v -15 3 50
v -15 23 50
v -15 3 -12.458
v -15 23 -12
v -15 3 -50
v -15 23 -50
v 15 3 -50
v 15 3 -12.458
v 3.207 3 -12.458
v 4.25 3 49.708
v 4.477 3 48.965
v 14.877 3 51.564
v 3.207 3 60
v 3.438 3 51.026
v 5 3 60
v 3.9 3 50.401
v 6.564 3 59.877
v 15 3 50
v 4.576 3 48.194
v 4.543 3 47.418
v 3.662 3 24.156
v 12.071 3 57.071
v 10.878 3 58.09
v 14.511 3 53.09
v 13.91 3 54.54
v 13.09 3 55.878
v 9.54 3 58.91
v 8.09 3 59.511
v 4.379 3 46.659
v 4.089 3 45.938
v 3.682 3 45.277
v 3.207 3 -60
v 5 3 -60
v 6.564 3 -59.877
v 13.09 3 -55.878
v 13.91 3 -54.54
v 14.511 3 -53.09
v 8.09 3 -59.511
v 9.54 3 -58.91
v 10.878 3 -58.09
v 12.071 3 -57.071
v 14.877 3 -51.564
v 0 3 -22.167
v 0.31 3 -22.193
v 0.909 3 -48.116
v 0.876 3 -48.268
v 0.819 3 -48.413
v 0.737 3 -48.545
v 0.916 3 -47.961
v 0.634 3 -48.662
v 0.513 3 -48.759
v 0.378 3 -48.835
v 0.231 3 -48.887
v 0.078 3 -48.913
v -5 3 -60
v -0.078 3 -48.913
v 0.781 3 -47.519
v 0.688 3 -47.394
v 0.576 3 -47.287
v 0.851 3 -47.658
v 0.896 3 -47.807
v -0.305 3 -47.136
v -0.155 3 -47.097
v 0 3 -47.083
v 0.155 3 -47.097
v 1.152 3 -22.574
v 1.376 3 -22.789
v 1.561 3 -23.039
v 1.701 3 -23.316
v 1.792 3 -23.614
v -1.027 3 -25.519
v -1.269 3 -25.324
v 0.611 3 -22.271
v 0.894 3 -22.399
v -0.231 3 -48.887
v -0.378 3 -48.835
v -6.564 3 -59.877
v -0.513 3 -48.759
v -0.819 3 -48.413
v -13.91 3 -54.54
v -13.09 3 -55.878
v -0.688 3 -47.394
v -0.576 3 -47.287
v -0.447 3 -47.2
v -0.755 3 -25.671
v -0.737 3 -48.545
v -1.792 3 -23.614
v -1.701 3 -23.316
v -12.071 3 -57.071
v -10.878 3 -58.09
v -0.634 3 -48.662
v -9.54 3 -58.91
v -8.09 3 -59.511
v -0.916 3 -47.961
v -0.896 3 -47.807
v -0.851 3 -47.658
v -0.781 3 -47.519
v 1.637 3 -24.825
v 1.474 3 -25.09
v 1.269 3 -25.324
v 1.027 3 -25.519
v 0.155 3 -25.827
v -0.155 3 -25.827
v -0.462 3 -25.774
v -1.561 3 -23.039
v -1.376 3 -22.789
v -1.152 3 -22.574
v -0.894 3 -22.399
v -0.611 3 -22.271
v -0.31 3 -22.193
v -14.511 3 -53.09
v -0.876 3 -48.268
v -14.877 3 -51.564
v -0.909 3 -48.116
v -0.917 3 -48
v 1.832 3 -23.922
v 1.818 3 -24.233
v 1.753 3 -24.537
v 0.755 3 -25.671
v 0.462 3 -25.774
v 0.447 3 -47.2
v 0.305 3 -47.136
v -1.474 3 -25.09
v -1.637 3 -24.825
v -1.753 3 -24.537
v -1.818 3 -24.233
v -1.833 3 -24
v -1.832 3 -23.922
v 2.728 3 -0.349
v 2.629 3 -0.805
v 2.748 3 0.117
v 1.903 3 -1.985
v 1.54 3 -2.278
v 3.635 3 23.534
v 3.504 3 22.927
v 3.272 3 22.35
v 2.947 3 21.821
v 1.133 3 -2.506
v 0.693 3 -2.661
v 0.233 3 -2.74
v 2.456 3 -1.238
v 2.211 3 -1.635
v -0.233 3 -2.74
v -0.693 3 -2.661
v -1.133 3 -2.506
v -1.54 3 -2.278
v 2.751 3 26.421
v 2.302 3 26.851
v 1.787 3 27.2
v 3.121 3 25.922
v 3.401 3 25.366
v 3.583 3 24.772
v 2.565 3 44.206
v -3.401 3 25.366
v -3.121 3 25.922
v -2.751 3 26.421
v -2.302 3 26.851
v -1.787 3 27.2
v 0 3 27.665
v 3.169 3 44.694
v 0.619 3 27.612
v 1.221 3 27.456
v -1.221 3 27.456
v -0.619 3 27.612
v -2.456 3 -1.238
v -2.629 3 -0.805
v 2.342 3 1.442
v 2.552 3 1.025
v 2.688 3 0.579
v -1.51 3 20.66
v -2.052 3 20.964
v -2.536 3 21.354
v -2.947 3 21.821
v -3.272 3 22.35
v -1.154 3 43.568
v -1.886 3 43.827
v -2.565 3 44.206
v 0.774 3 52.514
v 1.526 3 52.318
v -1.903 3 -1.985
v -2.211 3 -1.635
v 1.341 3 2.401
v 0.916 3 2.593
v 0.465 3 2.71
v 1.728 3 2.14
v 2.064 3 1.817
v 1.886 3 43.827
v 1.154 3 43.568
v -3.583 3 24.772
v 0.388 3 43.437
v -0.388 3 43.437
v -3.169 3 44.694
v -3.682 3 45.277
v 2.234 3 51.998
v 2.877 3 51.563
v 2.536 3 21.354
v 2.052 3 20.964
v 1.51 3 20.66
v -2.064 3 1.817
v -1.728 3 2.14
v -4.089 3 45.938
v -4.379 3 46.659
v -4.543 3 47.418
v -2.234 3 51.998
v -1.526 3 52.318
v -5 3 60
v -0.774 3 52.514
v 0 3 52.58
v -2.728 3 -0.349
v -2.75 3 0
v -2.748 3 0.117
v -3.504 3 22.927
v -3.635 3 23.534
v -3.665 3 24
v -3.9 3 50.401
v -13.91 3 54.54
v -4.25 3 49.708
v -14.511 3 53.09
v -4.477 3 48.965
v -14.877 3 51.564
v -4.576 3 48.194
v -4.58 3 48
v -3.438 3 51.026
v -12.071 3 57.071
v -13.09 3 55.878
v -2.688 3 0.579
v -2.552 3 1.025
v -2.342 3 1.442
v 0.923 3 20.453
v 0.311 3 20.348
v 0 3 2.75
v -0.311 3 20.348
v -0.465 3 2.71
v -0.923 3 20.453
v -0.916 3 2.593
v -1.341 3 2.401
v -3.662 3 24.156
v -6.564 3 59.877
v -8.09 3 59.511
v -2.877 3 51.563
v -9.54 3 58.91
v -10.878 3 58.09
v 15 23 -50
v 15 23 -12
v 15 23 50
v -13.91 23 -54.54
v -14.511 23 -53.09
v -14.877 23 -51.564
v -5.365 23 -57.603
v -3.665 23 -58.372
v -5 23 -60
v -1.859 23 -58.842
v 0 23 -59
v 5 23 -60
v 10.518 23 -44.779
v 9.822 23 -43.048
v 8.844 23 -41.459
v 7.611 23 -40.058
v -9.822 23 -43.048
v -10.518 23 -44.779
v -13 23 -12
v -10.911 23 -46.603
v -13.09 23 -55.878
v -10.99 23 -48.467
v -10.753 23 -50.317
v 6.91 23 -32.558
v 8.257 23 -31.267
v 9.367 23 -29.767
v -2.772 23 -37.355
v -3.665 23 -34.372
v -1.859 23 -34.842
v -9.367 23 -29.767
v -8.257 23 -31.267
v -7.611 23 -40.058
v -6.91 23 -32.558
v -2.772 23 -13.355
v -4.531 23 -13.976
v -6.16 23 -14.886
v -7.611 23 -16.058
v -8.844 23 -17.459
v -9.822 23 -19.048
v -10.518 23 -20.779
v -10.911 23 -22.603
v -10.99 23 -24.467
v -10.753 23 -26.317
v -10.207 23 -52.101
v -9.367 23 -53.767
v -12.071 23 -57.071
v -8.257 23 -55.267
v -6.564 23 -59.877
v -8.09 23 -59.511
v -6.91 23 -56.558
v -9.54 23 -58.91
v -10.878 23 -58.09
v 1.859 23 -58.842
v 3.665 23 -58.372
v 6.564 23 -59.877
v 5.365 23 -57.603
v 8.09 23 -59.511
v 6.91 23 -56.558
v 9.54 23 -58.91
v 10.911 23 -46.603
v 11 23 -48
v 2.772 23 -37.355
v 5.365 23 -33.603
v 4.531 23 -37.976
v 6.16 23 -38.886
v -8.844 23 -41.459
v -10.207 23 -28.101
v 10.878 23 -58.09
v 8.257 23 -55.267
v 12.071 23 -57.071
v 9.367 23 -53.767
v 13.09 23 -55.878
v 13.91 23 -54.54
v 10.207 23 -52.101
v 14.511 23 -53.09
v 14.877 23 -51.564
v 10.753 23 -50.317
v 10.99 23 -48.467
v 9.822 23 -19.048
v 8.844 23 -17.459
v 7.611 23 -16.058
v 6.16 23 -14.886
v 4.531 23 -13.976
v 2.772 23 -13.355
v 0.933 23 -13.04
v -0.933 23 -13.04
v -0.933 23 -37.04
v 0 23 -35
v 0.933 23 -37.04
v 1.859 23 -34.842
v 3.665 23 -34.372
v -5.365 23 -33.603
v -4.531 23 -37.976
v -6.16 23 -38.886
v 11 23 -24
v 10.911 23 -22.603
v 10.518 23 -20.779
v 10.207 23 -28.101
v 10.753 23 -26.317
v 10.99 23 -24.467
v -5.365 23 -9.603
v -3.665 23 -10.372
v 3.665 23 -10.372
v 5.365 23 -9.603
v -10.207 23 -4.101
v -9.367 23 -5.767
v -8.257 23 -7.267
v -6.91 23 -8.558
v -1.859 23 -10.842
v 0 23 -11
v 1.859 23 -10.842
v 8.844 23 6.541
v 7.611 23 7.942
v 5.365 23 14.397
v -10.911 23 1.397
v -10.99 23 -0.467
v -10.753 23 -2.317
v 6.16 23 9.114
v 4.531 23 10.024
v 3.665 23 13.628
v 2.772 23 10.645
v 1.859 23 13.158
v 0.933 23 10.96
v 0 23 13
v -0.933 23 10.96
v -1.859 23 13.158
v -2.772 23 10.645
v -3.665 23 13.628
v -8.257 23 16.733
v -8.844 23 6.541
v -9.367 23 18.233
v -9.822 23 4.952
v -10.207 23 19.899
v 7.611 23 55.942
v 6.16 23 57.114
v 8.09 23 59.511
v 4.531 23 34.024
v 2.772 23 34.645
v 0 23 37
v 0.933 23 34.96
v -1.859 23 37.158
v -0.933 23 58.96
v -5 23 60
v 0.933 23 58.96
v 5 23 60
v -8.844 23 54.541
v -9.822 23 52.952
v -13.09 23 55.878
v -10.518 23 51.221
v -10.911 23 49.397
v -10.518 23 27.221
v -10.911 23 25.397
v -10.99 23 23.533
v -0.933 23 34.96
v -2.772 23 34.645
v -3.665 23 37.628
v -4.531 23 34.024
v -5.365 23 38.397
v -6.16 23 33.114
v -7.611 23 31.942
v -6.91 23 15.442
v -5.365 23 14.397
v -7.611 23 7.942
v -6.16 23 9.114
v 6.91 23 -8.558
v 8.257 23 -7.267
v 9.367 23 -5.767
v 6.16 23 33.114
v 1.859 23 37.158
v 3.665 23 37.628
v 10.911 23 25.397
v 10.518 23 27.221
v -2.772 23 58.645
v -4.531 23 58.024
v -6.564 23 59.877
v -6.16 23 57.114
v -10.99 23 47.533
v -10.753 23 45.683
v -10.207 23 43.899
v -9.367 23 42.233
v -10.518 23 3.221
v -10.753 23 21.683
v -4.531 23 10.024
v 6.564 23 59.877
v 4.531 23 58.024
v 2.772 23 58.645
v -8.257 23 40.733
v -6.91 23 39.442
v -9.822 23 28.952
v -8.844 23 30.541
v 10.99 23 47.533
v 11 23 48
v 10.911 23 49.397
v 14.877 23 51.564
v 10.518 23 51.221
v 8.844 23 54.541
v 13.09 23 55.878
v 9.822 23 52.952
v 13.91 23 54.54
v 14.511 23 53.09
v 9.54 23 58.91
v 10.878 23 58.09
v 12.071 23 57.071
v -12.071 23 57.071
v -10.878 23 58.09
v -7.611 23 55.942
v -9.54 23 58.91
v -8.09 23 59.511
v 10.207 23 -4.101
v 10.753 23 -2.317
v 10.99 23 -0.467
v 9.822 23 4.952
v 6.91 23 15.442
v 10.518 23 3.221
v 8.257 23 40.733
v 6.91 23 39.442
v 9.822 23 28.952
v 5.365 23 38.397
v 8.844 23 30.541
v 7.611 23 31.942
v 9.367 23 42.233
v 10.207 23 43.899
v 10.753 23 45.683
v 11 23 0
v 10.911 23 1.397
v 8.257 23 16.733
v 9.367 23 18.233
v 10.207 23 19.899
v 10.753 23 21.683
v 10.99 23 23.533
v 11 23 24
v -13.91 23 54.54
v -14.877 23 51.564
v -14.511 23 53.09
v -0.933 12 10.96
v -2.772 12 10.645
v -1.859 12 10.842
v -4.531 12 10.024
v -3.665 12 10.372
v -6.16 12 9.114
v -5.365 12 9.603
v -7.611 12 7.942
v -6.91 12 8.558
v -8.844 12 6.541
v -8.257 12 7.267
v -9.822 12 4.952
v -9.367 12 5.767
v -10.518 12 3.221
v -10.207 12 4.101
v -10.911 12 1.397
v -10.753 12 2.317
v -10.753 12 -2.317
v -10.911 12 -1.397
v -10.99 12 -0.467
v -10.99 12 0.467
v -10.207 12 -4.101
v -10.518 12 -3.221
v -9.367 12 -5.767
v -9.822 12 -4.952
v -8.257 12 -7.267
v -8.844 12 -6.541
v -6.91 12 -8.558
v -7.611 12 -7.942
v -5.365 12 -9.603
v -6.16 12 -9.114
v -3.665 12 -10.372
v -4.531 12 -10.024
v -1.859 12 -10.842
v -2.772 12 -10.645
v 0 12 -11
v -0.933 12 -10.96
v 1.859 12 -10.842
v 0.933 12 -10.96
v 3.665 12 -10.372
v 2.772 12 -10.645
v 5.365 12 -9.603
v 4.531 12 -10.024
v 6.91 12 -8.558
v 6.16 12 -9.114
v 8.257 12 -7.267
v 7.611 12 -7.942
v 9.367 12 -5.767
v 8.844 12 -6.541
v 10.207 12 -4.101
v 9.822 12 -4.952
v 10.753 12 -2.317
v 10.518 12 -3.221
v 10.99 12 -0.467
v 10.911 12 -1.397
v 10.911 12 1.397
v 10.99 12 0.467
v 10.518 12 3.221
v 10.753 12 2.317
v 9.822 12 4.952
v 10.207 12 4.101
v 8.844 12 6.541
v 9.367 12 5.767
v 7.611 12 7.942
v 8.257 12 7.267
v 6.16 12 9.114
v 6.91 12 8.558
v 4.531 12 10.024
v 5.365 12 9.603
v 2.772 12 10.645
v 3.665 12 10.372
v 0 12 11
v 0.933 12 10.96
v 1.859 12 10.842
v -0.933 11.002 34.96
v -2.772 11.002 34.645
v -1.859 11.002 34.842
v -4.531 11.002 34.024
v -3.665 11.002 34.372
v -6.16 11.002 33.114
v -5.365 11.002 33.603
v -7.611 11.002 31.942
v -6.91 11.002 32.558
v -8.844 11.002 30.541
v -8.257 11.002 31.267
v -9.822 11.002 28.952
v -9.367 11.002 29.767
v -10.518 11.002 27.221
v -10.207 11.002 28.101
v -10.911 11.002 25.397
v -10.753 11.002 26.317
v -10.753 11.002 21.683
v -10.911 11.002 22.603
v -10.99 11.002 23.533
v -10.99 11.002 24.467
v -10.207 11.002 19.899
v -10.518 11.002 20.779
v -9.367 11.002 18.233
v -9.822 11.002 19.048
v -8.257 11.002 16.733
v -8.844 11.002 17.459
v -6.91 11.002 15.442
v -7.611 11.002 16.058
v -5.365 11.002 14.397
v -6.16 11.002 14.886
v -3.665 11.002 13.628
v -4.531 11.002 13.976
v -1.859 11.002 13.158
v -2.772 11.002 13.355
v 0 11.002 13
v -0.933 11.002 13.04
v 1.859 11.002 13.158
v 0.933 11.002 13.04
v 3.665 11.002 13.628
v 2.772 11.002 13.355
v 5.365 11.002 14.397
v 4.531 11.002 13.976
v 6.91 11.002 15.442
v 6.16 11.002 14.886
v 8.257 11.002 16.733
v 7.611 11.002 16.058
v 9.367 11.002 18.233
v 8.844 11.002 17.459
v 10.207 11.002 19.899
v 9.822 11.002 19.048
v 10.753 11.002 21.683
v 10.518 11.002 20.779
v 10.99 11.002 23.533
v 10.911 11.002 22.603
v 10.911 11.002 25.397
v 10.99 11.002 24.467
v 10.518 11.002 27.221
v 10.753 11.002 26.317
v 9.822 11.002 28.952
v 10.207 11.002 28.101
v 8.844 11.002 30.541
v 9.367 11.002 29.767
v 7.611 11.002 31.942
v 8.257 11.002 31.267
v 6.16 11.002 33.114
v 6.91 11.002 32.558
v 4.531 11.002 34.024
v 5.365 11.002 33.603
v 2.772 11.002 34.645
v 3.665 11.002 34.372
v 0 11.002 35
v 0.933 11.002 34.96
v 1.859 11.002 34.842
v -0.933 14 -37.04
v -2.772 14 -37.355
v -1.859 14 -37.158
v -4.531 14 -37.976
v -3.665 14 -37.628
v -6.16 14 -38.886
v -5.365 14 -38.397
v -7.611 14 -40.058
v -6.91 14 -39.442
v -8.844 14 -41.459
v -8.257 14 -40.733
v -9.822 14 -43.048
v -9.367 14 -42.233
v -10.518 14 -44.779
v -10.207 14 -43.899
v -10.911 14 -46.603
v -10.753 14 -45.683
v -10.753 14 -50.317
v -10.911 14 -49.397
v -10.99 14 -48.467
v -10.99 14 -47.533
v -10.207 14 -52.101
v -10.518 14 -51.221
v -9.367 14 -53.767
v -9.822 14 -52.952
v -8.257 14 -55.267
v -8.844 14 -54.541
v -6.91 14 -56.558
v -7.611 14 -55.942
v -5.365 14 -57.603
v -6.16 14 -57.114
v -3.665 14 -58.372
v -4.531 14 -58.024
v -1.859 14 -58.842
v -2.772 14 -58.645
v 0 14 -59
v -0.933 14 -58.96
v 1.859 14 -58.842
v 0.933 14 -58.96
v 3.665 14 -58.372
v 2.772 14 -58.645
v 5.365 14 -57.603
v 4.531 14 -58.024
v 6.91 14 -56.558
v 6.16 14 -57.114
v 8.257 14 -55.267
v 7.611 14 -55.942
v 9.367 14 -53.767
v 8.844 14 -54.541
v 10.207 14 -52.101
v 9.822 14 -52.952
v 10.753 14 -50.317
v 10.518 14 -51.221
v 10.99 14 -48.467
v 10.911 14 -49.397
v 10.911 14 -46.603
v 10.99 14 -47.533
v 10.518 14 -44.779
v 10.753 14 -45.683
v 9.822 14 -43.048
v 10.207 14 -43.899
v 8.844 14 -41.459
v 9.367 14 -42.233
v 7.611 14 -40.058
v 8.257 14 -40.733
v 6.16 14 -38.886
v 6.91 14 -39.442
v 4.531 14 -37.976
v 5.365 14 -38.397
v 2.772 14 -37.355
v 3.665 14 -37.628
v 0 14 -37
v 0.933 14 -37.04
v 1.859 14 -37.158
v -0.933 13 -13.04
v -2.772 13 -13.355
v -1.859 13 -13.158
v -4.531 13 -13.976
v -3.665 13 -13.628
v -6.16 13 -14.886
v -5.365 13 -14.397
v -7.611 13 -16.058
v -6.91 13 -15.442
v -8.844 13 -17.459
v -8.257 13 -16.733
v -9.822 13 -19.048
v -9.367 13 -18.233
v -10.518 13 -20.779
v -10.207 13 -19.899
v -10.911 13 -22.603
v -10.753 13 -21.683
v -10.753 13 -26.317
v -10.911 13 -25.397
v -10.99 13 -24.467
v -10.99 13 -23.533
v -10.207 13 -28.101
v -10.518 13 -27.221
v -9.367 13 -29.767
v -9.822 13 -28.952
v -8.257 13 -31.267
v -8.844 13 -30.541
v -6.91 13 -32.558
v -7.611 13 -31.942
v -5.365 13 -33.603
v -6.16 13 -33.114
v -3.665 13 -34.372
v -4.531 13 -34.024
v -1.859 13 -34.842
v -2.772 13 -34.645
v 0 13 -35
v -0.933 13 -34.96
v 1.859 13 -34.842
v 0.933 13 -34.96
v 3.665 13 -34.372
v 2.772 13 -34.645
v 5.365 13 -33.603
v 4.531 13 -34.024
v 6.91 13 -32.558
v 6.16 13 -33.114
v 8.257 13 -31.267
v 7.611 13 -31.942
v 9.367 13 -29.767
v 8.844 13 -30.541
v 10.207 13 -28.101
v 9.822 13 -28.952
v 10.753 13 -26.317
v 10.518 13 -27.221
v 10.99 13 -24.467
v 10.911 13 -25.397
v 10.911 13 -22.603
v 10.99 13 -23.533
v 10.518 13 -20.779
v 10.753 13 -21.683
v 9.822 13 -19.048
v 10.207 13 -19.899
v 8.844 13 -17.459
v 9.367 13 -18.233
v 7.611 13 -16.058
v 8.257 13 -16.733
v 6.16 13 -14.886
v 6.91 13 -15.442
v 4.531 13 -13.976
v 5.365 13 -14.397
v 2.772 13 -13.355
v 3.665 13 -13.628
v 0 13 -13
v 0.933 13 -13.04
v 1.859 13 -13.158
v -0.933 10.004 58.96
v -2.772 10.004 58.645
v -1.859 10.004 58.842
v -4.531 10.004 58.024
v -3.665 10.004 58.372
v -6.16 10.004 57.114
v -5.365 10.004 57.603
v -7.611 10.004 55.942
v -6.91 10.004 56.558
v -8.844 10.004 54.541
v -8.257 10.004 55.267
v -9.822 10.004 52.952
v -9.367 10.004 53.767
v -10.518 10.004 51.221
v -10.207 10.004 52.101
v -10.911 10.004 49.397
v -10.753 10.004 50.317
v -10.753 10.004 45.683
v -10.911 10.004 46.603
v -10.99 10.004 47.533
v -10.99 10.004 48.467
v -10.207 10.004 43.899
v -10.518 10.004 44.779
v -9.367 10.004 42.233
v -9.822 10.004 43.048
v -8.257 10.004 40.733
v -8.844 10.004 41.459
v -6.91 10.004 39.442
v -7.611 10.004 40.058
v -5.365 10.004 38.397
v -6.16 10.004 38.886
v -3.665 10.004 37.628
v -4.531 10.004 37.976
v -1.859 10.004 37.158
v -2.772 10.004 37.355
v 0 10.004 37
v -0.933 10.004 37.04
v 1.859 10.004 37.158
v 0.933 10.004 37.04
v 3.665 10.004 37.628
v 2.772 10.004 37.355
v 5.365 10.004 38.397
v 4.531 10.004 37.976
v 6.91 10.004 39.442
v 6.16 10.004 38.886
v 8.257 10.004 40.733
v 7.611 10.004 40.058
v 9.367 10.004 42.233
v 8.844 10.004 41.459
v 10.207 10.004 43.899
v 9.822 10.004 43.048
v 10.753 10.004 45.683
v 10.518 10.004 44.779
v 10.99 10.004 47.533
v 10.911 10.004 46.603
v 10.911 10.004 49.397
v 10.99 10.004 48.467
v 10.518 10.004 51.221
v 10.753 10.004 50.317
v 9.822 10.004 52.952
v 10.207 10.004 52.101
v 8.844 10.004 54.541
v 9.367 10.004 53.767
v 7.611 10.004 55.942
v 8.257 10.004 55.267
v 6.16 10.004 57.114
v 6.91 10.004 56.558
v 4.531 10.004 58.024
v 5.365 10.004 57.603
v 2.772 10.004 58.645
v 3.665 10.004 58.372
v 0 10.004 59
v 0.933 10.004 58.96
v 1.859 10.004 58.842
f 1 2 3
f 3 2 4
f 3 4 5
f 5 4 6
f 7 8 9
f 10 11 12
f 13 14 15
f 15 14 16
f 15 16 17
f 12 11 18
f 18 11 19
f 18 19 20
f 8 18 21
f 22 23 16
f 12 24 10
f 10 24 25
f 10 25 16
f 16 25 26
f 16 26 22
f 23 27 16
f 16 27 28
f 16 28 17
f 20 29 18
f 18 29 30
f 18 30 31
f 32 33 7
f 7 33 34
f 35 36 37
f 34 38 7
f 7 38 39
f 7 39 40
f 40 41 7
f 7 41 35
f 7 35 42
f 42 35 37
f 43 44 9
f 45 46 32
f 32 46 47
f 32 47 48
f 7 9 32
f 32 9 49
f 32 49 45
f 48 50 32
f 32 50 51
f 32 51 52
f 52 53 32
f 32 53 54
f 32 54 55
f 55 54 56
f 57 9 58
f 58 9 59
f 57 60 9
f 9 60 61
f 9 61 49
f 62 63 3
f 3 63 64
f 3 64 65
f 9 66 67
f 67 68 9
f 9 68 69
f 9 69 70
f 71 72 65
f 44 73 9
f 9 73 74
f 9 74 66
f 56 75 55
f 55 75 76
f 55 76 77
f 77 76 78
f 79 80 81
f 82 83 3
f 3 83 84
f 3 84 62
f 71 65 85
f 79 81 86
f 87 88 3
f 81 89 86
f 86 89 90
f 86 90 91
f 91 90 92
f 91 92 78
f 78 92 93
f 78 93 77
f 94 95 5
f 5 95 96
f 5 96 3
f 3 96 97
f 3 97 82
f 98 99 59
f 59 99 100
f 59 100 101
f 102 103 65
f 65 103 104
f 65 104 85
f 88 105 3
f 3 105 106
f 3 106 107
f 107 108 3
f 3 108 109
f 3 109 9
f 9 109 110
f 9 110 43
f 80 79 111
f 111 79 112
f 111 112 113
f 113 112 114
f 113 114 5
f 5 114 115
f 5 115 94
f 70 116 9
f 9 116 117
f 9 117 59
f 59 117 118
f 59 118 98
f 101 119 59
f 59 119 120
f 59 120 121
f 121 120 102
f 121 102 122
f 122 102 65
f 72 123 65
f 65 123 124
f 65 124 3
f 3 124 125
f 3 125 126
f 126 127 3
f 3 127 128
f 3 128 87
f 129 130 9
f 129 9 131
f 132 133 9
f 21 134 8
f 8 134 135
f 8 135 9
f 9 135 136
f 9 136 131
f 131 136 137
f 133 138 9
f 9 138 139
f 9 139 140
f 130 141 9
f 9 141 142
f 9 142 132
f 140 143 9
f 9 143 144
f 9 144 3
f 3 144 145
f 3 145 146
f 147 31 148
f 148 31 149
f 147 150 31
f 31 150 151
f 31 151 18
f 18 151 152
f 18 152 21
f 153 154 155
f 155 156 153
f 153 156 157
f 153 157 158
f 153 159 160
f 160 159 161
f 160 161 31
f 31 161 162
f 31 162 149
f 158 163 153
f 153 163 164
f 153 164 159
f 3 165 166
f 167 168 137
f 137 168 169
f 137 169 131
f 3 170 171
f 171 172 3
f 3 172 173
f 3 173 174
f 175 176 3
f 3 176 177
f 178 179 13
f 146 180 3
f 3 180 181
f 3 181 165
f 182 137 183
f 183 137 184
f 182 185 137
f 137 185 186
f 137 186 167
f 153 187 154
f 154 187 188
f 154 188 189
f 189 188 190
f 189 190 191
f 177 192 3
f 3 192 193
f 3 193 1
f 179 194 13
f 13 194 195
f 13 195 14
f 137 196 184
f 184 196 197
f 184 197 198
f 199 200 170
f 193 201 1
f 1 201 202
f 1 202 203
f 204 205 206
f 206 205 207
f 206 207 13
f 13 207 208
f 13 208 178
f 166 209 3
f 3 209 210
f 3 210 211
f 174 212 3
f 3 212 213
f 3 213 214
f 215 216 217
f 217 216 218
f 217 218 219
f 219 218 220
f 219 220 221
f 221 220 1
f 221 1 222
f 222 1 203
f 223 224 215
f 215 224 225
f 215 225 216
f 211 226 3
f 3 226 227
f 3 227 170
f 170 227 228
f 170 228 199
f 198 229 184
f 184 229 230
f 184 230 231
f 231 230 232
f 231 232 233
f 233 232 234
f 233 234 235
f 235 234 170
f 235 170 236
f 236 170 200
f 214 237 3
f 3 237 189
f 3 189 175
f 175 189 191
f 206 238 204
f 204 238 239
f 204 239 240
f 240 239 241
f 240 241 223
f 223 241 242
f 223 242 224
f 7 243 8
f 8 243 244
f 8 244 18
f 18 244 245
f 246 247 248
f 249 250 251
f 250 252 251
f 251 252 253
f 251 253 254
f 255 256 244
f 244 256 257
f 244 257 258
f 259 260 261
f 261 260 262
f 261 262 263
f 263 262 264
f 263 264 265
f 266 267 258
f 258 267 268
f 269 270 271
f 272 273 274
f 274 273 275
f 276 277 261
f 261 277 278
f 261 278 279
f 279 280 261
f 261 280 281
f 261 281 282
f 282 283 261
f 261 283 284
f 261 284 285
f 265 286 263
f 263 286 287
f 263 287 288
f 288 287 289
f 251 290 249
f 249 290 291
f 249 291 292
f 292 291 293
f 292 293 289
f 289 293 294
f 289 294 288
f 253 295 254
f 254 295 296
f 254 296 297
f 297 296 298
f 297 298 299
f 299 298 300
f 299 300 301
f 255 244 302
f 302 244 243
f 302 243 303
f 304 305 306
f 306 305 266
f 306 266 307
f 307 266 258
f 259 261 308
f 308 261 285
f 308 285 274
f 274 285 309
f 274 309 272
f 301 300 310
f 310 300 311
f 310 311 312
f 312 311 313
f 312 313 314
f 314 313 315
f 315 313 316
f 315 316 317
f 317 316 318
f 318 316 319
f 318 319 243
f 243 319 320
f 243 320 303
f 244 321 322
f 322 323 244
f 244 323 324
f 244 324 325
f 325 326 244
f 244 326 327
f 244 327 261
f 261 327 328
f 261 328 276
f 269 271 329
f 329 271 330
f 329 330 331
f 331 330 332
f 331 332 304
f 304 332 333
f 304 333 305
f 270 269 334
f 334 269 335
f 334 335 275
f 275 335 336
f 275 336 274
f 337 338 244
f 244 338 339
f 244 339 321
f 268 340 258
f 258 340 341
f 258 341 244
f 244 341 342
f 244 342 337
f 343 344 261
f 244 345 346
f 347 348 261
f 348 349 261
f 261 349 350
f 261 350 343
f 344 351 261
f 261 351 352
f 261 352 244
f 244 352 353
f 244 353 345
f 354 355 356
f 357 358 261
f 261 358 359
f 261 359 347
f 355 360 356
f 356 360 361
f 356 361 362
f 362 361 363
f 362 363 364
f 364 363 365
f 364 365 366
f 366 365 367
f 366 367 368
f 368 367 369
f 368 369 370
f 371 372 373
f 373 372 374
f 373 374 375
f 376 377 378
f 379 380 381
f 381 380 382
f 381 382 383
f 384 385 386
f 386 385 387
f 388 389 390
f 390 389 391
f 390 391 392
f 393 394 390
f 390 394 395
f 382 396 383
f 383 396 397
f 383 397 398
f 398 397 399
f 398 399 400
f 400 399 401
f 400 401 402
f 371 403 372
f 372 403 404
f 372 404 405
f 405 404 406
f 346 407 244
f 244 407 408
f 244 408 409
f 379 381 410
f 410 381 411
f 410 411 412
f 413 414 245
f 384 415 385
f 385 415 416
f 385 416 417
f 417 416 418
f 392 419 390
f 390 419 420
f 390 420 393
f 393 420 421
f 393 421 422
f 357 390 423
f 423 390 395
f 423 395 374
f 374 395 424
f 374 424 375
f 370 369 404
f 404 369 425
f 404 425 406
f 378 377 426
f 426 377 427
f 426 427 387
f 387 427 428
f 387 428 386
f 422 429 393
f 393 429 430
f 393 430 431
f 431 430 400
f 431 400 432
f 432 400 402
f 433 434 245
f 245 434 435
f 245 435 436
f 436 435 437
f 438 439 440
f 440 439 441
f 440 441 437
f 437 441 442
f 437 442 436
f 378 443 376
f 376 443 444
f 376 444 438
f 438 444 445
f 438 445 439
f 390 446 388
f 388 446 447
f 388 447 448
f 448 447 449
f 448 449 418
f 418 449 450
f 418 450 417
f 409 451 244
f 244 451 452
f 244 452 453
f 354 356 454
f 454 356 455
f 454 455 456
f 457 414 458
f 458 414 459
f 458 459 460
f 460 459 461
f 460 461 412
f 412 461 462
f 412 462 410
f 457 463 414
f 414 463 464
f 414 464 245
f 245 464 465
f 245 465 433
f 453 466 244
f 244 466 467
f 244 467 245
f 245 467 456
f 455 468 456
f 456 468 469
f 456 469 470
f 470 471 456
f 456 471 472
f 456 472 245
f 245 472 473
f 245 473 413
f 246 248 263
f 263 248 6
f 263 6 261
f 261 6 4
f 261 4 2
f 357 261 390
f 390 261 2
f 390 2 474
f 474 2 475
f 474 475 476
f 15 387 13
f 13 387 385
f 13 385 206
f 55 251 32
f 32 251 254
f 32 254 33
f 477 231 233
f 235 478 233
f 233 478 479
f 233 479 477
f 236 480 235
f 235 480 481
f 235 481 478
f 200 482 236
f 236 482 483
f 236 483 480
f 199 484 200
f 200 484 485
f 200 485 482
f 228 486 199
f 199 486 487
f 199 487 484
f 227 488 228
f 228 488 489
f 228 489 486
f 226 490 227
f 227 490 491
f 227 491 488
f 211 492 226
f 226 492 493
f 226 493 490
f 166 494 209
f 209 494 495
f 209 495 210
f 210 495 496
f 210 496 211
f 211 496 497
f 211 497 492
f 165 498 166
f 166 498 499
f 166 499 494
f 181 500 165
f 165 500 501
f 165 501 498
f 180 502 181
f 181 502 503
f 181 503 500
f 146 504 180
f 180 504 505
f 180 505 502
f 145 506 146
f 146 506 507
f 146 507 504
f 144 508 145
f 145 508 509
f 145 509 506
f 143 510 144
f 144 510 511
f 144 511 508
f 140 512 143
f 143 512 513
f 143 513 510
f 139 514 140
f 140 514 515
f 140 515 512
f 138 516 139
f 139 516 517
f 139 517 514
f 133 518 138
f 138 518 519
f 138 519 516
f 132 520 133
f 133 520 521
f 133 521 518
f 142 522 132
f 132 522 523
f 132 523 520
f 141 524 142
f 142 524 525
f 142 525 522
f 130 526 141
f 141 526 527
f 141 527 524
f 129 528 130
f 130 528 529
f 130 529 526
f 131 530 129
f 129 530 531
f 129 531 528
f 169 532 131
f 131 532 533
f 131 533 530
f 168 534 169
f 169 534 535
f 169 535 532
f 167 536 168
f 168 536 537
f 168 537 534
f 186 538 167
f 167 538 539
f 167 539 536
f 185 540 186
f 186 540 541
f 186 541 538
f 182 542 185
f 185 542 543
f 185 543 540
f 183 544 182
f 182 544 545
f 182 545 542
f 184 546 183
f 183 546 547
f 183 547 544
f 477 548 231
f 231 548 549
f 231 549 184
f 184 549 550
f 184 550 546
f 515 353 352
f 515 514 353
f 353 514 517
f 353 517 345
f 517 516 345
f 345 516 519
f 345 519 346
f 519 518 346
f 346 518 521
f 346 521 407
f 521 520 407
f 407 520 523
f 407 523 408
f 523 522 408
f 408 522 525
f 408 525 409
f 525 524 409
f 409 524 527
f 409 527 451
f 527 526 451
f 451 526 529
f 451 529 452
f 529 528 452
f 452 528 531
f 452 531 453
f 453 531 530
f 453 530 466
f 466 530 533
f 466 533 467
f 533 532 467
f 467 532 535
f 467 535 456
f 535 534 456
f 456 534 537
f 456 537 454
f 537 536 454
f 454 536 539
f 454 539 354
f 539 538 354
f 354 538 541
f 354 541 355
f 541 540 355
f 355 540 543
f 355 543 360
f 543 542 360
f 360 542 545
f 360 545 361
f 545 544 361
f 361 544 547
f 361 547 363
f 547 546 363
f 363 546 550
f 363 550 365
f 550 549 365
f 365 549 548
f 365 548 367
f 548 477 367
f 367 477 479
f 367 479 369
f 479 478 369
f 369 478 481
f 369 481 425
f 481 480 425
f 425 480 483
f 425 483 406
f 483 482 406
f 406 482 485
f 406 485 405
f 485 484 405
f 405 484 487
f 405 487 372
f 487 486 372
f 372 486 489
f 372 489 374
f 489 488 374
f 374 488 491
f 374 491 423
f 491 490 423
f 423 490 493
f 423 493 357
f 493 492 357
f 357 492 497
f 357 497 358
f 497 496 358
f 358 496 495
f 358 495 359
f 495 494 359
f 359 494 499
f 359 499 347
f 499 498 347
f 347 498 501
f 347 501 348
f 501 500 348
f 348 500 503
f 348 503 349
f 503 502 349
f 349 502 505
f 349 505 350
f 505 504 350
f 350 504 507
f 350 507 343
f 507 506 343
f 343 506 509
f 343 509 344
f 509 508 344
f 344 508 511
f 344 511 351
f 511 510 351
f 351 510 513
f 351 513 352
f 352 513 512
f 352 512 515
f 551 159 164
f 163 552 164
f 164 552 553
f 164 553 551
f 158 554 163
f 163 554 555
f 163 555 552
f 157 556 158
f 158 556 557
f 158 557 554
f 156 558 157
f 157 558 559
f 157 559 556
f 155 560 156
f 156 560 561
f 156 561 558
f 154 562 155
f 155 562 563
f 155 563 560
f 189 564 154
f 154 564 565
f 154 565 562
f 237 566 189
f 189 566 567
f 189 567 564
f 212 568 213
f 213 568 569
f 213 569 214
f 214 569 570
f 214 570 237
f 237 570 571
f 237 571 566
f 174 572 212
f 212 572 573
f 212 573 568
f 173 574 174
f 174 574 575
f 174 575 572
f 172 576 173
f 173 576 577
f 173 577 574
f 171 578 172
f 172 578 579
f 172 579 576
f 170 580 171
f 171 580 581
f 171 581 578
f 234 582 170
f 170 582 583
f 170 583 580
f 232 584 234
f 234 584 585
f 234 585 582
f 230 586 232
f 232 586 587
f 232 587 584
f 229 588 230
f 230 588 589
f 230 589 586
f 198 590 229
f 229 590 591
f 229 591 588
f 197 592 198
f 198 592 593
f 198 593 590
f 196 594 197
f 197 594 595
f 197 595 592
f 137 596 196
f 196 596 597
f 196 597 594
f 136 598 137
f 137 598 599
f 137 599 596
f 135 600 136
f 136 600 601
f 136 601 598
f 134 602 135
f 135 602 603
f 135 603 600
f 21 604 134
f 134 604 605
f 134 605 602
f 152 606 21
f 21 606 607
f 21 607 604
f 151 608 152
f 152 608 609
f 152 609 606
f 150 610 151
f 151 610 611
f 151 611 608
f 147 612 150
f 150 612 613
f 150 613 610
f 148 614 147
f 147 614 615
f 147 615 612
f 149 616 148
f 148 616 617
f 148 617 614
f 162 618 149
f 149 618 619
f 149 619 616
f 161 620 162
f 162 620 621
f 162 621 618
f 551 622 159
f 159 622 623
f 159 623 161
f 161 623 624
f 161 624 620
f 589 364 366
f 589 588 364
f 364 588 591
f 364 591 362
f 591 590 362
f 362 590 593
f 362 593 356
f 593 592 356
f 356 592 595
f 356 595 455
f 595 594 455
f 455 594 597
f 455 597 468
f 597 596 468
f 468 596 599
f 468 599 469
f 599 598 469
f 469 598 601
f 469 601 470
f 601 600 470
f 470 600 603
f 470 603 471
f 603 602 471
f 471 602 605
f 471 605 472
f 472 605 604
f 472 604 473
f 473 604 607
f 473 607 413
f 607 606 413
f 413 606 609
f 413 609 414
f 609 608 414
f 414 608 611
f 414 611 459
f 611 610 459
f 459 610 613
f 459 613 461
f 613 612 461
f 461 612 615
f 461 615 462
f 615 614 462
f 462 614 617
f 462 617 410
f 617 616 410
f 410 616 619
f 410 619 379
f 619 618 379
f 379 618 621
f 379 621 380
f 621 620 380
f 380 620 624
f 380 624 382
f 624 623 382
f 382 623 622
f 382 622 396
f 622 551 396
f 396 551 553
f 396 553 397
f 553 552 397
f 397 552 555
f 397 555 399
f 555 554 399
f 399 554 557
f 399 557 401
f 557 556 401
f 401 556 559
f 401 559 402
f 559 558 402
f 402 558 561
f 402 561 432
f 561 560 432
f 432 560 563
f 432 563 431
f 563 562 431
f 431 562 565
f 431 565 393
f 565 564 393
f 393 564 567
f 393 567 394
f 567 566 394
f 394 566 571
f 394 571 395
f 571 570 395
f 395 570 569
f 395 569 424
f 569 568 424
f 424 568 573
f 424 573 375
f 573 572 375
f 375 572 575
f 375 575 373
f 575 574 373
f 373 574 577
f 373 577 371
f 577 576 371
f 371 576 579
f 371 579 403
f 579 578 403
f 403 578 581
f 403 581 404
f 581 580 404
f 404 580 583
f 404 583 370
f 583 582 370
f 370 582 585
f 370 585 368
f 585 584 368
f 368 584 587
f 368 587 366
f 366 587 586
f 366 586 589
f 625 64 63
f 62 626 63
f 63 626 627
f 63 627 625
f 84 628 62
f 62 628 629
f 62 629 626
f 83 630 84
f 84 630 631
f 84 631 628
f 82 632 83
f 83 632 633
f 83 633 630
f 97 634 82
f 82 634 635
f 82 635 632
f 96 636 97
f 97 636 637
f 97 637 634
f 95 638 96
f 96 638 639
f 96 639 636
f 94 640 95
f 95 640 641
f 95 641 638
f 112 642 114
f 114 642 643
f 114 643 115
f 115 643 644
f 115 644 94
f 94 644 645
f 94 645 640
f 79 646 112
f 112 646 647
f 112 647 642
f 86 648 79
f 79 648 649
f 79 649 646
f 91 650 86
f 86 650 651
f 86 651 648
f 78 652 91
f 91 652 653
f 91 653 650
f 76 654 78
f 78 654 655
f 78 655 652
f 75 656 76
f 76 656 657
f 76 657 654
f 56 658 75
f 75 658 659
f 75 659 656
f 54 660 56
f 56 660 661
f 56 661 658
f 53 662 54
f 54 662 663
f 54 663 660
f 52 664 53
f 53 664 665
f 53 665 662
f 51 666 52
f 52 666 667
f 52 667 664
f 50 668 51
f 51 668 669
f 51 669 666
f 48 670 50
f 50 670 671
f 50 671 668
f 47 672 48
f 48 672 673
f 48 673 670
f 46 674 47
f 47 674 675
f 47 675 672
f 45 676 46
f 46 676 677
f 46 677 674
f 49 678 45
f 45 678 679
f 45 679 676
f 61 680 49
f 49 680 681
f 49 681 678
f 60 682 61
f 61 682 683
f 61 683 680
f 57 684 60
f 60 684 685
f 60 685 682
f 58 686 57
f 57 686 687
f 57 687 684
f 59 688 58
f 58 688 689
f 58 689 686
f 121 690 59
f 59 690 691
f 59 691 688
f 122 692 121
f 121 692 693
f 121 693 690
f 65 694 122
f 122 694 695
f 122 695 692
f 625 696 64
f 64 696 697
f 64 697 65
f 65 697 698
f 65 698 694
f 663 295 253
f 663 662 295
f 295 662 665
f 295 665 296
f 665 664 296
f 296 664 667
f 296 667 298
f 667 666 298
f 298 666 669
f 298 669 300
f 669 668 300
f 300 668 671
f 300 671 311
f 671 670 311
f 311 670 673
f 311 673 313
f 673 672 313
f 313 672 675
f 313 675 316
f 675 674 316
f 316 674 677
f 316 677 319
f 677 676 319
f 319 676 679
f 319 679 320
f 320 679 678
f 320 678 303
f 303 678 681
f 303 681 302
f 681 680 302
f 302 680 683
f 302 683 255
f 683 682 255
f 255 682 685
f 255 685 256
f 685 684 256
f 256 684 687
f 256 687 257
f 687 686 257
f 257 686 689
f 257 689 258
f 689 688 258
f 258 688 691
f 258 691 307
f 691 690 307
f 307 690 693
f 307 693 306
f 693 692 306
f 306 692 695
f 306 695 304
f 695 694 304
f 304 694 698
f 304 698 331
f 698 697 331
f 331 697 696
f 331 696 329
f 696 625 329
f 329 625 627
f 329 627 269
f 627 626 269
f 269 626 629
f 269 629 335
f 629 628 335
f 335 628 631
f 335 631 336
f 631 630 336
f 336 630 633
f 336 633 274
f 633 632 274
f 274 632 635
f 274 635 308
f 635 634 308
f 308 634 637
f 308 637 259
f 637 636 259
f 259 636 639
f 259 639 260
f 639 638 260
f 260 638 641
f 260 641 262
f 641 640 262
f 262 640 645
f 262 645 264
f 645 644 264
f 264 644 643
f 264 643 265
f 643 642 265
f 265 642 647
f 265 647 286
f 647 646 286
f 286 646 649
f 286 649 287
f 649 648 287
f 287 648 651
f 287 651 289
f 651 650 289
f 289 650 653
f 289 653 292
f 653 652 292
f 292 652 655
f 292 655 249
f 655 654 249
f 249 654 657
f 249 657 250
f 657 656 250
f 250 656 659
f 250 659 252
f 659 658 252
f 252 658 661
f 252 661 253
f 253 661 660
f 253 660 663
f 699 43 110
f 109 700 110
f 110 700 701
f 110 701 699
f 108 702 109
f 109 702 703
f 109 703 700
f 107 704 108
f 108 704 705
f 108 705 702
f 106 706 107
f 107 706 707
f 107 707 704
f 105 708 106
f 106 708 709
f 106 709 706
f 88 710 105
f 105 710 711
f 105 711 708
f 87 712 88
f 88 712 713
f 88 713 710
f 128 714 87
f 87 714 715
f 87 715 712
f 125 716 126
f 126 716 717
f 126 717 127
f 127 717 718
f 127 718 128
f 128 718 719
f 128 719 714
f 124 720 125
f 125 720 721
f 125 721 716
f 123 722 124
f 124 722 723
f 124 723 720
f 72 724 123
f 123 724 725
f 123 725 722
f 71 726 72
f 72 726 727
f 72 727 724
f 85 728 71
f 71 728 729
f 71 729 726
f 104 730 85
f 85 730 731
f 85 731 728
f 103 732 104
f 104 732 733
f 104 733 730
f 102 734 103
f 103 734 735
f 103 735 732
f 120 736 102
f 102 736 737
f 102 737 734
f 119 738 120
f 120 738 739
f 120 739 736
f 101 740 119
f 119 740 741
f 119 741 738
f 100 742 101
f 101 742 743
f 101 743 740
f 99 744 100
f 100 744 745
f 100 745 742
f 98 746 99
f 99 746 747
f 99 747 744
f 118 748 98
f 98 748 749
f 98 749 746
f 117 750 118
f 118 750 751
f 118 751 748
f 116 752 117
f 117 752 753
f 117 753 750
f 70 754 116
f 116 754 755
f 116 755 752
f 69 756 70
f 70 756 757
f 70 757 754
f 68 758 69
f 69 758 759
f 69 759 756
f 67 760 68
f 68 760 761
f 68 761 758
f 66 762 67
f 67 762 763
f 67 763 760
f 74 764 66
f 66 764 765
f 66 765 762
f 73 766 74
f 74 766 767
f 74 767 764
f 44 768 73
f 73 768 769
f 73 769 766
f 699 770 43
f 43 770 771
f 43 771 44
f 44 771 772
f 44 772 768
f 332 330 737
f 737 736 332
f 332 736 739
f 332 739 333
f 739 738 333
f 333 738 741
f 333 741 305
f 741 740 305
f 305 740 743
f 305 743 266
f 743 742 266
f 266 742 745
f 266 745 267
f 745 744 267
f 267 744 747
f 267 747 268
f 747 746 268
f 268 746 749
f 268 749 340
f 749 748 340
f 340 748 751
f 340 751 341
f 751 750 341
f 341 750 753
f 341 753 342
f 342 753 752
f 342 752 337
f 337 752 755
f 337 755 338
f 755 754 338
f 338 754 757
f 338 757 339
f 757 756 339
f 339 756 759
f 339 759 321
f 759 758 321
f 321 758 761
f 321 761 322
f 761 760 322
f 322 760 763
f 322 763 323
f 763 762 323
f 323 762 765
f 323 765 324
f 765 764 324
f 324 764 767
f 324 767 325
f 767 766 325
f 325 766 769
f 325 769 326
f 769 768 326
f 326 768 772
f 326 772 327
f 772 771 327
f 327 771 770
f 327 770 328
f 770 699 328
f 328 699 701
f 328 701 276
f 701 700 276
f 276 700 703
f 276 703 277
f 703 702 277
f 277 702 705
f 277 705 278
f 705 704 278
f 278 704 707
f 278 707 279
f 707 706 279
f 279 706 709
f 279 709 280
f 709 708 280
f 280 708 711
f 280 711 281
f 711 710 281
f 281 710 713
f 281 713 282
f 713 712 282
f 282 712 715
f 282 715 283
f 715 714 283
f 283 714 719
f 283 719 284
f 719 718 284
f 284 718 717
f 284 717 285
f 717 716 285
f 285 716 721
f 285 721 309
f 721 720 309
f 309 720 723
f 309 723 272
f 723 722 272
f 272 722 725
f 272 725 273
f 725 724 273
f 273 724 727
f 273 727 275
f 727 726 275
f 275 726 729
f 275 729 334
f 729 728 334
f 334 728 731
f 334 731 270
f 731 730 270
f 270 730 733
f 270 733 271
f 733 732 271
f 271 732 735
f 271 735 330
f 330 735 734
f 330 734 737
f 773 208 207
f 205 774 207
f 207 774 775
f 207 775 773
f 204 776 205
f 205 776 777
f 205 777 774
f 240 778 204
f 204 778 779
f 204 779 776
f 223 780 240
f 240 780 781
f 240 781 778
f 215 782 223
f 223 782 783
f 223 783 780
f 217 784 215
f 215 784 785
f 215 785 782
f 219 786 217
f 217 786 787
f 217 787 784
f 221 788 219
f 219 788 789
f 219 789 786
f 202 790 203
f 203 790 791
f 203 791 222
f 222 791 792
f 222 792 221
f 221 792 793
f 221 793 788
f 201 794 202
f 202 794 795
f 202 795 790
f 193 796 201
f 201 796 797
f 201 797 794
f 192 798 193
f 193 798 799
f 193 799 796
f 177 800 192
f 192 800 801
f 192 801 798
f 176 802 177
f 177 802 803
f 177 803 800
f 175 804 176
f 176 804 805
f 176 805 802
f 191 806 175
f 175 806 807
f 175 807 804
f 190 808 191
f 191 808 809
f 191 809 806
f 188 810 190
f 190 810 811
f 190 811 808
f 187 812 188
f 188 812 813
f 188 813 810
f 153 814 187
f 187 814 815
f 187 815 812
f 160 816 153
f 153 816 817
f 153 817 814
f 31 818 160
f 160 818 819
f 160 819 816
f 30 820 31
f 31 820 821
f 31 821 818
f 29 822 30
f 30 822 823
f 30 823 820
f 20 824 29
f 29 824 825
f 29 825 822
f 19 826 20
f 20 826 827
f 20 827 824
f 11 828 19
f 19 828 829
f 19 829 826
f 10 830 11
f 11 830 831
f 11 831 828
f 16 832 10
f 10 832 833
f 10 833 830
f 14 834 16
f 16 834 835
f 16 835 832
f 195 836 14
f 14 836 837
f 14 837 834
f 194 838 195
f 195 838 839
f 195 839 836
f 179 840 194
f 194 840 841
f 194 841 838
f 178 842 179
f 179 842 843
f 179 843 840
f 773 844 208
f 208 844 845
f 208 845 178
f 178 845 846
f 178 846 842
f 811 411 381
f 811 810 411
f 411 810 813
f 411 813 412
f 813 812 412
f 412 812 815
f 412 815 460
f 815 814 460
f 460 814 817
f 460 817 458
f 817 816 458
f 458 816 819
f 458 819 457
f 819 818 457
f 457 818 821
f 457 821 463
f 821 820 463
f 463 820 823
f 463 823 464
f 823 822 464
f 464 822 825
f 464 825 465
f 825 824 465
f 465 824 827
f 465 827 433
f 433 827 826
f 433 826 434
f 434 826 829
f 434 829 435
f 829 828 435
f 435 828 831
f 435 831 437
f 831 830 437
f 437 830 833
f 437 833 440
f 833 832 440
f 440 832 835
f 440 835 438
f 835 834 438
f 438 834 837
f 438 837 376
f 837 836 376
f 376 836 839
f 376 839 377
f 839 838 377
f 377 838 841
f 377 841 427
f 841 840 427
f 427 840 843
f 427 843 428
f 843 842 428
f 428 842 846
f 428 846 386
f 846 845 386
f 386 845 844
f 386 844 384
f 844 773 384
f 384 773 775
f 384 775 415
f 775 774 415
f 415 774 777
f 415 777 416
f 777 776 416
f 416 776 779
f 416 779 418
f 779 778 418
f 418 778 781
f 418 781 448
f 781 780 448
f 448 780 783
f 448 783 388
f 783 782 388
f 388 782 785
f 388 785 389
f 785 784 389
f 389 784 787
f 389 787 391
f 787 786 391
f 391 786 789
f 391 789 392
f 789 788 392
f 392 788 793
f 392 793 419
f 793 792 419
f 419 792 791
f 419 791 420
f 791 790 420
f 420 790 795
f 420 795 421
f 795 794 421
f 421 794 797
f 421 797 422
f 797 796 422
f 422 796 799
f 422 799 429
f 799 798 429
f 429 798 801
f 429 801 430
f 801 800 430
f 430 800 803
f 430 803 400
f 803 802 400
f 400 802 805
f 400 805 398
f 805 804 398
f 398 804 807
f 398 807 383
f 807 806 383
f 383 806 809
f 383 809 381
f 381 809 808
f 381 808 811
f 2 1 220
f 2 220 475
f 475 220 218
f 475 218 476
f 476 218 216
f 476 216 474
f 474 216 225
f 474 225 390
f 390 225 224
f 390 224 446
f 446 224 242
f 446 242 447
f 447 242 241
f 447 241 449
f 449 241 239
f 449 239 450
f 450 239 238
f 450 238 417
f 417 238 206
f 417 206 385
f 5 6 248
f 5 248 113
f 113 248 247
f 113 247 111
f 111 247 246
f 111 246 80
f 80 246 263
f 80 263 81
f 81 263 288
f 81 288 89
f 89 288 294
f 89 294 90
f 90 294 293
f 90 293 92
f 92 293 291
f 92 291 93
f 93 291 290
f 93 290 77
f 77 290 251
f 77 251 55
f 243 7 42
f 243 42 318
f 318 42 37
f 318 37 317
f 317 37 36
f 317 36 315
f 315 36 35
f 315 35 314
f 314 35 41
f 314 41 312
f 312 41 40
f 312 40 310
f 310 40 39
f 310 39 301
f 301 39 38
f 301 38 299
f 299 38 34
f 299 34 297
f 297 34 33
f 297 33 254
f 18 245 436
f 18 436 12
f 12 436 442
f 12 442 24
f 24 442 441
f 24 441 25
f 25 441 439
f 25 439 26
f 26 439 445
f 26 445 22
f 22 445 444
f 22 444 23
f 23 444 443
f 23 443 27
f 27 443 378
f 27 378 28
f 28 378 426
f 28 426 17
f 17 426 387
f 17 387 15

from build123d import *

# Parameters (mm, degrees)
BOSS_EXTRUDE1_DEPTH      = 60
BOSS_EXTRUDE1_DEPTH_BACK = 60
SKETCH2_W                = 30
SKETCH2_H                = 20
FILLET1_R                = 10


with BuildPart() as part:
    # Sketch1 → Revolve1 (revolve)
    with BuildSketch(Plane(origin=(0, 0, 0), x_dir=(0, 0, -1), z_dir=(1, 0, 0))):
        Polygon((0, 40.5), (0, 0), (11, 12), (11, 39.586753314), (10.816971936, 39.157197652), (10.816971936, 42.5), (0, 42.5), align=None)
    revolve(axis=Axis((0, 0, 0), (0, 1, 0)))


with BuildPart() as body_2:
    # Sketch1<3> → Revolve2 (revolve)
    with BuildSketch(Plane(origin=(0, 0, 0), x_dir=(0, 0, -1), z_dir=(1, 0, 0))):
        Polygon((24, 41.5), (24, 1), (35, 13), (35, 40.586753314), (35.621275123, 42.044847991), (35.621275123, 42.5), (24, 42.5), align=None)
    revolve(axis=Axis((0, 1, -24), (0, 1, 0)))


with BuildPart() as body_3:
    # Sketch1<4> → Revolve3 (revolve)
    with BuildSketch(Plane(origin=(0, 0, 0), x_dir=(0, 0, -1), z_dir=(1, 0, 0))):
        Polygon((48, 42.5), (48, 2), (59, 14), (59, 41.586753314), (59.389122501, 42.5), align=None)
    revolve(axis=Axis((0, 2, -48), (0, 1, 0)))


with BuildPart() as body_4:
    # Sketch1<5> → Revolve4 (revolve)
    with BuildSketch(Plane(origin=(0, 0, 0), x_dir=(0, 0, -1), z_dir=(1, 0, 0))):
        Polygon((-24, 39.501916964), (-24, -0.998083036), (-13, 11.001916964), (-13, 38.588670277), (-12.993341541, 38.604297273), (-12.993341541, 42.5), (-24, 42.5), align=None)
    revolve(axis=Axis((0, -0.998083036, 24), (0, 1, 0)))


with BuildPart() as body_5:
    # Sketch1<6> → Revolve5 (revolve)
    with BuildSketch(Plane(origin=(0, 0, 0), x_dir=(0, 0, -1), z_dir=(1, 0, 0))):
        Polygon((-48, 38.503833927), (-48, -1.996166073), (-37, 10.003833927), (-37, 37.590587241), (-36.686033209, 38.327448077), (-36.686033209, 42.5), (-48, 42.5), align=None)
    revolve(axis=Axis((0, -1.996166073, 48), (0, 1, 0)))


with BuildPart() as body_6:
    # Sketch2 → Boss-Extrude1 (new, two sides: drawn at the far end of the back side and taken through both)
    with BuildSketch(Plane.XY.offset(-BOSS_EXTRUDE1_DEPTH_BACK)):
        with Locations((0, 13)):
            Rectangle(SKETCH2_W, SKETCH2_H)
    extrude(amount=BOSS_EXTRUDE1_DEPTH + BOSS_EXTRUDE1_DEPTH_BACK)

    # Combine1: cut part, body 5, body 2, body 3, body 4
    add(part.part, mode=Mode.SUBTRACT)
    add(body_5.part, mode=Mode.SUBTRACT)
    add(body_2.part, mode=Mode.SUBTRACT)
    add(body_3.part, mode=Mode.SUBTRACT)
    add(body_4.part, mode=Mode.SUBTRACT)

    # Fillet1
    fillet1_edges = [body_6.edges().sort_by_distance(p)[0] for p in [
        (-15, 13, -60),
        (15, 13, -60),
        (15, 13, 60),
        (-15, 13, 60),
    ]]
    fillet(fillet1_edges, radius=FILLET1_R)


solid = body_6.part
